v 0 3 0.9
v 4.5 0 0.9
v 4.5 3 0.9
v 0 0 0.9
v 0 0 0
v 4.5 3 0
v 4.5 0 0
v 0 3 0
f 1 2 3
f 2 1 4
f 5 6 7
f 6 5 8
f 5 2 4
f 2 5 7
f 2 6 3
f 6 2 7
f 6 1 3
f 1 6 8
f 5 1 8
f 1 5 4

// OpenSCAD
/* Warning, this is a very basic generator with a lot of approximation 
input data : [VDFN, 4SX, 4.5x3x0.9mm, 14, , B, C04-00405B]
generated by com.zoubworld.electronics.cad.model3d.Basic
Date : Sun Feb 15 10:50:48 CET 2026
*/

//body
color("black")
translate([0,0,0])
cube([4.5,3.0,0.9], center=false);
